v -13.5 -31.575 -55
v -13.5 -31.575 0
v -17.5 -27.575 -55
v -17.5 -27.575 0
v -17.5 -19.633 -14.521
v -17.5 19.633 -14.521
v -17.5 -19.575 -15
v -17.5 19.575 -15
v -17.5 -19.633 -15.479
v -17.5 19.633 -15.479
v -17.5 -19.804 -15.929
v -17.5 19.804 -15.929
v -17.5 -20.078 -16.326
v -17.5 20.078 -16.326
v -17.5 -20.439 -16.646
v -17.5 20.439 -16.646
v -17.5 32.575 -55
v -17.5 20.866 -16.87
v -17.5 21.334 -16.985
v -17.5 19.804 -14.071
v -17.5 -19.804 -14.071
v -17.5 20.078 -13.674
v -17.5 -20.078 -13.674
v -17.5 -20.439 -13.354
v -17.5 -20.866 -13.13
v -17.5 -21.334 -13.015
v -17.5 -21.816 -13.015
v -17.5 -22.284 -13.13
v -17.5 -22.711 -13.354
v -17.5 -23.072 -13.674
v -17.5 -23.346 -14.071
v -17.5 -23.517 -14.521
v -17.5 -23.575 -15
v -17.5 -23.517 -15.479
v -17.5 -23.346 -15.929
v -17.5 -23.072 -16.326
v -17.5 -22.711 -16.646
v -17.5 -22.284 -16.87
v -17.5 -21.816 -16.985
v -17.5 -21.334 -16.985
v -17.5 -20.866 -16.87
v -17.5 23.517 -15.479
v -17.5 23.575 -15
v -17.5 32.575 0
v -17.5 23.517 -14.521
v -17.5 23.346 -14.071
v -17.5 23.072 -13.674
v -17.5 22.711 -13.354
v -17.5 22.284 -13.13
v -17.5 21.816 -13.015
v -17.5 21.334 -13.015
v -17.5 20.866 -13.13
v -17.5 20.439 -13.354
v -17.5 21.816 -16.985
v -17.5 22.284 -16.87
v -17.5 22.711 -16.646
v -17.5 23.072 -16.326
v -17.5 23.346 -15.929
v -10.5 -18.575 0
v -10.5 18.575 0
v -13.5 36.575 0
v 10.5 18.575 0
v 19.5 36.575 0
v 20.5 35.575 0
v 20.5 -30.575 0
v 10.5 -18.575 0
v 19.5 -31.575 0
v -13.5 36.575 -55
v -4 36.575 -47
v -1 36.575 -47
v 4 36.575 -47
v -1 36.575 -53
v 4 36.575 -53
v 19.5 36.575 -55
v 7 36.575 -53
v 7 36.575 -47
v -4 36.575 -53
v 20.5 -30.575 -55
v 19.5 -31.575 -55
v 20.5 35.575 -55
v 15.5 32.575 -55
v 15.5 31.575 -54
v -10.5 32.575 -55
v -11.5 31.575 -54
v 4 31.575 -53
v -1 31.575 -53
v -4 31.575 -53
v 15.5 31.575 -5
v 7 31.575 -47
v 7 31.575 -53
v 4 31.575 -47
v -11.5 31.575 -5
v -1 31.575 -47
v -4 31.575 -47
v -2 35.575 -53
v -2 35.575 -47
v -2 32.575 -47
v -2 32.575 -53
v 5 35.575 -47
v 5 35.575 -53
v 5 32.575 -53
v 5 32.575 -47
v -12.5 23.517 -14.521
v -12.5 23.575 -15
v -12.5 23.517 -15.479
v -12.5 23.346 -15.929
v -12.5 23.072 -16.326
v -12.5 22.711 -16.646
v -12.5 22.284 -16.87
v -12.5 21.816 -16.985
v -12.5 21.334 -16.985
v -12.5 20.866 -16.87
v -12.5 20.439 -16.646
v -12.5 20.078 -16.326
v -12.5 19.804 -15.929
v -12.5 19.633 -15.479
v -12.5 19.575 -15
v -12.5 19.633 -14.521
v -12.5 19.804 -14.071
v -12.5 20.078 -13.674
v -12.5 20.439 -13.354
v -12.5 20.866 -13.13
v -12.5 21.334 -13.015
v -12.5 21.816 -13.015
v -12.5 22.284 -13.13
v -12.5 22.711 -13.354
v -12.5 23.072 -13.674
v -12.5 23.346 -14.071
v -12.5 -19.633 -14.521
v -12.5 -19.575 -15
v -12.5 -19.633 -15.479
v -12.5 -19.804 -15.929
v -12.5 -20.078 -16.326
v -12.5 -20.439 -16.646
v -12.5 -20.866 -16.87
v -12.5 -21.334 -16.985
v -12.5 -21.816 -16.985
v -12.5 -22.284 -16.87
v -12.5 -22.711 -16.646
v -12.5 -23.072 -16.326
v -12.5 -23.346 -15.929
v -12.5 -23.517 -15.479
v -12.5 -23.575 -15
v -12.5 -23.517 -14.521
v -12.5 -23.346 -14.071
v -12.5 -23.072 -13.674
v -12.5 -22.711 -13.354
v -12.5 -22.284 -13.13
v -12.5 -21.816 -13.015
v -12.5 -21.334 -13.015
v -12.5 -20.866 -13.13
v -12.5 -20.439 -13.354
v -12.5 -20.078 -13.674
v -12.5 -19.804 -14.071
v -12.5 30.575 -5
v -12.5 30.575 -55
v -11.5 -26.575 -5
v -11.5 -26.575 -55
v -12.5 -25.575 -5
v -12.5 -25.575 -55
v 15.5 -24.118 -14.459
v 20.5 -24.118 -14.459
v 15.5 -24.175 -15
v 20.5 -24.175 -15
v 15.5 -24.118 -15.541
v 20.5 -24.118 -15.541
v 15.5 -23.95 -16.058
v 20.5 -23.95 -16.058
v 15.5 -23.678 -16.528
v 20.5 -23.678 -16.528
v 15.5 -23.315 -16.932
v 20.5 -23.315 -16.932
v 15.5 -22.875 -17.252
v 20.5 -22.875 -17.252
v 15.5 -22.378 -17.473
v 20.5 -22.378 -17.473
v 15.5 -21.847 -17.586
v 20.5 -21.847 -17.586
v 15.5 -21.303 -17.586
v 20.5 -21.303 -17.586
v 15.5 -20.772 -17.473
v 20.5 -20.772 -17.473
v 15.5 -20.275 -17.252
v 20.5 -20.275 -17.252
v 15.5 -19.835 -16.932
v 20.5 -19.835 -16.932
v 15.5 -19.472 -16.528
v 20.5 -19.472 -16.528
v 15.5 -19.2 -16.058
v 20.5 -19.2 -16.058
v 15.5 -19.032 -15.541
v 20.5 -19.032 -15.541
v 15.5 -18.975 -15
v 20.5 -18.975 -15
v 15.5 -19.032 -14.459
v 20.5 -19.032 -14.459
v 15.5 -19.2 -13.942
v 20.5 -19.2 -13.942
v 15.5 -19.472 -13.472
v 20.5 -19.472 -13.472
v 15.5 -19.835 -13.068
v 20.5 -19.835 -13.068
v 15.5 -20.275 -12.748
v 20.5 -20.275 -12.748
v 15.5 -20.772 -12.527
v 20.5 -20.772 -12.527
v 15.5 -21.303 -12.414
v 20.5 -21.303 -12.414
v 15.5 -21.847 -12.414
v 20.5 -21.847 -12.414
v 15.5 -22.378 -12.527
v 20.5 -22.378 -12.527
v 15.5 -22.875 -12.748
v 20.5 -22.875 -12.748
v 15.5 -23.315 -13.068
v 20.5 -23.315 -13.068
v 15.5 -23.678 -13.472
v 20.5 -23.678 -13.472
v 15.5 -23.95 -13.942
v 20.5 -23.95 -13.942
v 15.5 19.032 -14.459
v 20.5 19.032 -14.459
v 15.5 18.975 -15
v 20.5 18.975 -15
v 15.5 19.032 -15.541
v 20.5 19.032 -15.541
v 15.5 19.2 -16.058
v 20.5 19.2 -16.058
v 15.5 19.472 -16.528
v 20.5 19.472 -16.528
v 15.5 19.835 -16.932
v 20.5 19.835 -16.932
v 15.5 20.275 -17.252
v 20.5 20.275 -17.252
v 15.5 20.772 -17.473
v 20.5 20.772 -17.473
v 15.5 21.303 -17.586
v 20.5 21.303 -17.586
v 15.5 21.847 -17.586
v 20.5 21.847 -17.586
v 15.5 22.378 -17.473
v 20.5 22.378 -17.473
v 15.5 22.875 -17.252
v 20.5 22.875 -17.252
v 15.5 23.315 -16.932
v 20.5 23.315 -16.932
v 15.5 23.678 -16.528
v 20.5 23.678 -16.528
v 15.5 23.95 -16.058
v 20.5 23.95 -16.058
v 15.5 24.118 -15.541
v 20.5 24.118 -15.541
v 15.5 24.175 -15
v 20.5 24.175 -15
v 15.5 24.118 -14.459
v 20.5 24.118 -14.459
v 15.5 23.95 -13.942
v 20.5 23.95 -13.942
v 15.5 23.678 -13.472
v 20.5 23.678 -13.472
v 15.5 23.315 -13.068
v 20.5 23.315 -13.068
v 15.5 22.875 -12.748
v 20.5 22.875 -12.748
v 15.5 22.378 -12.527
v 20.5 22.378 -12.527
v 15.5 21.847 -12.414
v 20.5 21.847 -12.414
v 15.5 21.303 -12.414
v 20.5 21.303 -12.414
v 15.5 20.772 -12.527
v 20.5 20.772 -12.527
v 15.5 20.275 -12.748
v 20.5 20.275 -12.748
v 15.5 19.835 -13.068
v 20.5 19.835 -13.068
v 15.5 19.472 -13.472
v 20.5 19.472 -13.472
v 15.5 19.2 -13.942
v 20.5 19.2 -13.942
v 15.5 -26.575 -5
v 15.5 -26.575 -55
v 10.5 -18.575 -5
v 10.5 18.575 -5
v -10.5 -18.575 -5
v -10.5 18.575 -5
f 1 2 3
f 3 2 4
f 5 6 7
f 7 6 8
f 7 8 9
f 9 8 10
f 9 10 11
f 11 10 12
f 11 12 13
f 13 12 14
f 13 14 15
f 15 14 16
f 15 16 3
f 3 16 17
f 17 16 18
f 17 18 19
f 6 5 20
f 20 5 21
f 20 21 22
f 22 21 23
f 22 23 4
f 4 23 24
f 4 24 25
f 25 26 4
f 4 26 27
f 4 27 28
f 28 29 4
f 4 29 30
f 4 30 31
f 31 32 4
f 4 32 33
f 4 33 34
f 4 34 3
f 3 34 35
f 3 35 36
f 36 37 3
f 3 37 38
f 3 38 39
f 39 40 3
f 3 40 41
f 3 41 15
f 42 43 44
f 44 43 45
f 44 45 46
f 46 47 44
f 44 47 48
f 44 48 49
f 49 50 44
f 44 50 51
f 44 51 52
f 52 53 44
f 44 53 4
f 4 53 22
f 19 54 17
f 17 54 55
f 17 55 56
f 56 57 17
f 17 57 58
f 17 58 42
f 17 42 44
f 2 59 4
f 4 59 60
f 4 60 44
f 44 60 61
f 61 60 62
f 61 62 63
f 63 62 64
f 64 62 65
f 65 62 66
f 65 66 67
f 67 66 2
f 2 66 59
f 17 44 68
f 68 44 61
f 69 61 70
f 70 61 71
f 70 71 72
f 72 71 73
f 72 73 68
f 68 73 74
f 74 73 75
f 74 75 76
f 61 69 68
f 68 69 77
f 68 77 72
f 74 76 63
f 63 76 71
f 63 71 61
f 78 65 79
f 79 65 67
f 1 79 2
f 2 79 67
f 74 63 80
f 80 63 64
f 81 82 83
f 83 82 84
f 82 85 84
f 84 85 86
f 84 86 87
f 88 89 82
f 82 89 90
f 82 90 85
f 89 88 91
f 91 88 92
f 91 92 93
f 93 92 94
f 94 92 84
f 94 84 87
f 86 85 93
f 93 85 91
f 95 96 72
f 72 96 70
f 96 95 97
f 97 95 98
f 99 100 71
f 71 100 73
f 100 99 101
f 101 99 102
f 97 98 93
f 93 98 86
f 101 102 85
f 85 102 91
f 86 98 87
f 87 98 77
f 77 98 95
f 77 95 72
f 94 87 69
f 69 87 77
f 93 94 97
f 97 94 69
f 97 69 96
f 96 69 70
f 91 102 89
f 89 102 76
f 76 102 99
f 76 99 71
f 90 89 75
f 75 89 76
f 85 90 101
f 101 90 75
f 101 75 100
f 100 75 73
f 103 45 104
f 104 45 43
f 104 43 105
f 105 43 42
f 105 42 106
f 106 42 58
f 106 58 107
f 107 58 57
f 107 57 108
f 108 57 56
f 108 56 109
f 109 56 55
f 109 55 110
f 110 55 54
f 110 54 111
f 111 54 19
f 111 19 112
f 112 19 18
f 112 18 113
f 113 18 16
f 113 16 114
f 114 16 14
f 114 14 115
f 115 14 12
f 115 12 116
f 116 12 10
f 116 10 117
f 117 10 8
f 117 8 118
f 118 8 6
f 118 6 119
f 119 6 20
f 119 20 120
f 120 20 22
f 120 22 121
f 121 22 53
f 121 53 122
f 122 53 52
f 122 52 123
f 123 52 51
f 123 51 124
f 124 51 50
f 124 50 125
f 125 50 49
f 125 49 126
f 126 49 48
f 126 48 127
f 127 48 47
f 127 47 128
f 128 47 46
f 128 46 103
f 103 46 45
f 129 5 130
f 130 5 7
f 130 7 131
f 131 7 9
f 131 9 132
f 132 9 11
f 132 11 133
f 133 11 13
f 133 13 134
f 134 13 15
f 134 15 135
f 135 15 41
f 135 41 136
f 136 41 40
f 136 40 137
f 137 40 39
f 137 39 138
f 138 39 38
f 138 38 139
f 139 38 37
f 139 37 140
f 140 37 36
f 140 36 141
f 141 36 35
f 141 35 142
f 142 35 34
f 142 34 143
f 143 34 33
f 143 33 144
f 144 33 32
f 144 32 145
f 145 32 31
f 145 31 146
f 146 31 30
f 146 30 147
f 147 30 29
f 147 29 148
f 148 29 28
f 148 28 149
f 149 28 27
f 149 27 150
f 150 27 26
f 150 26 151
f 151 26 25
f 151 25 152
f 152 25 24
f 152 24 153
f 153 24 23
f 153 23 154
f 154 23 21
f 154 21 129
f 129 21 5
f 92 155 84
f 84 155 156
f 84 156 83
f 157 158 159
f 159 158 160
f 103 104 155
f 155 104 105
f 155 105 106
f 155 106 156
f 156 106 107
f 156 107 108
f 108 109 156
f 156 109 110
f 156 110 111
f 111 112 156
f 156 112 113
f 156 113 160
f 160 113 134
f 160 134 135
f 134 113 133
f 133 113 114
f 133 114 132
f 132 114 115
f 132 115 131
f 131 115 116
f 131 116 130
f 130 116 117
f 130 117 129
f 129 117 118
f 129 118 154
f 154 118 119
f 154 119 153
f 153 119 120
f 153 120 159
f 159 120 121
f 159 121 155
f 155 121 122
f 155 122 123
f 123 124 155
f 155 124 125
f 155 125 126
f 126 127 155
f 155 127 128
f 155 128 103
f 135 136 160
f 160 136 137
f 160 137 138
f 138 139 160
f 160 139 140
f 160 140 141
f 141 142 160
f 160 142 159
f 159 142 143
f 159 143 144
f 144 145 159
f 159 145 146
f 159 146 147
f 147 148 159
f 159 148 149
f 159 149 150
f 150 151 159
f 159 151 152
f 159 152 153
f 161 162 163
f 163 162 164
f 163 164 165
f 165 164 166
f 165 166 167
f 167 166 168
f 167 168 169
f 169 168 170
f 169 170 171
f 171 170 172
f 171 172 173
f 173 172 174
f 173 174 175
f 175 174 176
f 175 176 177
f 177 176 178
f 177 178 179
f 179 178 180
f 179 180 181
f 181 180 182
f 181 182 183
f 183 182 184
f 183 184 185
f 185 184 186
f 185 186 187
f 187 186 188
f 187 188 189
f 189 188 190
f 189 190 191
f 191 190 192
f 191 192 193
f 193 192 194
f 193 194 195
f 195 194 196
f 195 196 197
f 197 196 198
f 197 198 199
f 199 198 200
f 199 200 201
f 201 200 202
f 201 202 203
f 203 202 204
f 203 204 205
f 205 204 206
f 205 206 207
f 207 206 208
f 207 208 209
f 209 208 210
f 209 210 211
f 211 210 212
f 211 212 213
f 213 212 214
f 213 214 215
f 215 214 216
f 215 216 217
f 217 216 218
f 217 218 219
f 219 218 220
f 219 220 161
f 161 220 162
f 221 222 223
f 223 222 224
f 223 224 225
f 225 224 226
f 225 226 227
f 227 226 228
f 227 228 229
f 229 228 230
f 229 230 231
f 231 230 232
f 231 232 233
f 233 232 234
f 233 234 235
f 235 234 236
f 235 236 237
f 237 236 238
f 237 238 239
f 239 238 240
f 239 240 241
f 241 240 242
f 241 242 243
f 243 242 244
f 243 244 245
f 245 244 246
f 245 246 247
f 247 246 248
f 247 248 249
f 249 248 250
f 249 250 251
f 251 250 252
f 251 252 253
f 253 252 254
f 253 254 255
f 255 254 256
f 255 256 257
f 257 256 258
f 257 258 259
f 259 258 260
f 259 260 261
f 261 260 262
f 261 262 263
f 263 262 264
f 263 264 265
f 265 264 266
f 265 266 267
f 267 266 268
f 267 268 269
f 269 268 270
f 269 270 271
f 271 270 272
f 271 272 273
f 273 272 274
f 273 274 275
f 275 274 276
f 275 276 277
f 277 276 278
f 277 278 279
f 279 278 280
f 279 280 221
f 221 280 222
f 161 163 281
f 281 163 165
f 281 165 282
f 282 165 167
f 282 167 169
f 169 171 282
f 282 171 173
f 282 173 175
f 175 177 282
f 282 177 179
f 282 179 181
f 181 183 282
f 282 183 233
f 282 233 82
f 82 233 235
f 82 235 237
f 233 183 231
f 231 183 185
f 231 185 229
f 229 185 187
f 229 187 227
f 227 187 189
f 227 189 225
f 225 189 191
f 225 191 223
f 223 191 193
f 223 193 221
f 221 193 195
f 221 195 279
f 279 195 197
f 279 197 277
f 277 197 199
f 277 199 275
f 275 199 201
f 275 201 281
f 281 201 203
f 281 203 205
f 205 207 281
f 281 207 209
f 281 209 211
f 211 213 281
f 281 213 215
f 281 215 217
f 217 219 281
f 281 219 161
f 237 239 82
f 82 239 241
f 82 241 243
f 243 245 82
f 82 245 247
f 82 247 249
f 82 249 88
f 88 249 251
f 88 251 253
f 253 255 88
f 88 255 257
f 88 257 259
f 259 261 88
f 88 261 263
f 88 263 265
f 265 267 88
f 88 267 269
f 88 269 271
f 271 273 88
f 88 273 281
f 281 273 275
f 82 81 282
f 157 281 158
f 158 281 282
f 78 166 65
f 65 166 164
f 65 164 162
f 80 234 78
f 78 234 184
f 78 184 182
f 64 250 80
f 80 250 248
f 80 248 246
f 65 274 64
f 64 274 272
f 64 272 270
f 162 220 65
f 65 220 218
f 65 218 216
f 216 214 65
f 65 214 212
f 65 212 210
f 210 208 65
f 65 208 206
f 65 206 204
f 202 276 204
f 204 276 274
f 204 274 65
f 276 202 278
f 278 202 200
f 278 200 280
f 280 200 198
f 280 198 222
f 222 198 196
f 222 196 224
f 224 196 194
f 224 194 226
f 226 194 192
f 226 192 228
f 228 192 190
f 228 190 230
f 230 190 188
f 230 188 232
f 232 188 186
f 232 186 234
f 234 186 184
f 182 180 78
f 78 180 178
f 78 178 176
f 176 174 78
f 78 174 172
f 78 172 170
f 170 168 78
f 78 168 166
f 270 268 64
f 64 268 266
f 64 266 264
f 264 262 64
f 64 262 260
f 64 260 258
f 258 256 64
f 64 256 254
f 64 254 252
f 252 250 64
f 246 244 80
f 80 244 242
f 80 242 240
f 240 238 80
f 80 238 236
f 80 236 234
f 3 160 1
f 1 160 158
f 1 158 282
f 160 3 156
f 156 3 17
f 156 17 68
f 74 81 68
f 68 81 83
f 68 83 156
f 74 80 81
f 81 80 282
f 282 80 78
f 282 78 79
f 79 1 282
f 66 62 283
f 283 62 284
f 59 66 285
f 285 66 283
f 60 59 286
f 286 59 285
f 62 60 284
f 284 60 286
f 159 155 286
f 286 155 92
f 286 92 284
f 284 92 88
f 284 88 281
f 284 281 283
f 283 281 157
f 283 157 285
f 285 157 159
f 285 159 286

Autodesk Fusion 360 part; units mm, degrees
sketch "Sketch1" plane through (0, 0, 0) normal (0, 0, 1) x (1, 0, 0)
  line L0 (10.5, -18.575) -> (-10.5, -18.575)
  line L1 (-10.5, -18.575) -> (-10.5, 18.575)
  line L2 (-10.5, 18.575) -> (10.5, 18.575)
  line L3 (10.5, 18.575) -> (10.5, -18.575)
  line L4 (10.5, -18.575) -> (-10.5, 18.575) construction
  line L5 (-10.5, -18.575) -> (10.5, 18.575) construction
  line L6 (15.5, -26.575) -> (-12.5, -26.575)
  line L7 (-12.5, -26.575) -> (-12.5, 31.575)
  line L8 (-12.5, 31.575) -> (15.5, 31.575)
  line L9 (15.5, 31.575) -> (15.5, -26.575)
  line L10 (20.5, -31.575) -> (-17.5, -31.575)
  line L11 (-17.5, -31.575) -> (-17.5, 36.575)
  line L12 (-17.5, 36.575) -> (20.5, 36.575)
  line L13 (20.5, 36.575) -> (20.5, -31.575)
  dimension "d1" = 21
  dimension "d2" = 37.15
  dimension "d4" = 2
  dimension "d5" = 8
  dimension "d6" = 5
  dimension "d7" = 5
  dimension "d19" = 13
  dimension "d20" = 5
  dimension "d21" = 5
  dimension "d22" = 5
extrude "Extrude1" add sketch "Sketch1" against normal blind 5 contours L6 L7 L8 L9
extrude "Extrude2" add sketch "Sketch1" against normal blind 55 contours L10 L11 L12 L13
sketch "Sketch3" plane through (20.5, 0, 0) normal (1, 0, 0) x (0, 1, 0)
  line L0 (36.575, 0) -> (-31.575, 0)
  line L1 (-31.575, 0) -> (-31.575, -55)
  line L2 (-31.575, -55) -> (36.575, -55)
  line L3 (36.575, -55) -> (36.575, 0)
  line L4 (-31.575, -15) -> (36.575, -15) construction
  line L5 (36.575, 0) -> (-31.575, 0)
  circle A0 centre (21.575, -15) radius 2.6
  circle A1 centre (-21.575, -15) radius 2.6
  line L6 (-26.575, -5) -> (31.575, -5)
  line L7 (31.575, -5) -> (31.575, -55)
  line L8 (31.575, -55) -> (-26.575, -55)
  line L9 (-26.575, -55) -> (-26.575, -5)
  dimension "d23" = 15
  dimension "d24" = 5.2
  dimension "d25" = 5.2
  dimension "d26" = 10
  dimension "d27" = 5
extrude "Extrude4" cut sketch "Sketch3" against normal up to surface (5 mm away) contours A0 | A1
sketch "Sketch4" plane through (-17.5, 0, 0) normal (-1, 0, 0) x (0, -1, 0)
  line L0 (31.575, 0) -> (-36.575, 0)
  line L1 (-36.575, 0) -> (-36.575, -55)
  line L2 (-36.575, -55) -> (31.575, -55)
  line L3 (31.575, -55) -> (31.575, 0)
  circle A0 centre (21.575, -15) radius 2.6
  circle A1 centre (-21.575, -15) radius 2.6
  line L4 (26.575, -5) -> (-31.575, -5)
  line L5 (-31.575, -5) -> (-31.575, -55)
  line L6 (-31.575, -55) -> (26.575, -55)
  line L7 (26.575, -55) -> (26.575, -5)
  circle A2 centre (-21.575, -15) radius 2
  circle A3 centre (21.575, -15) radius 2
  dimension "d30" = 4
  dimension "d31" = 4
chamfer "Chamfer5" distance 1 angle 45 2 edges at (-12.5, -26.575, -30) (-12.5, 31.575, -30)
extrude "Extrude5" cut sketch "Sketch4" against normal through all contours A2 | A3
sketch "Sketch5" plane through (0, 36.575, 0) normal (0, 1, 0) x (-1, 0, 0)
  line L0 (-20.5, -55) -> (17.5, -55)
  line L1 (17.5, 0) -> (-20.5, 0)
  line L2 (-1.5, -55) -> (-1.5, 0) construction
  line L3 (2, -47) -> (4, -47)
  line L4 (4, -47) -> (4, -53)
  line L5 (4, -53) -> (2, -53)
  line L6 (2, -53) -> (2, -47)
  line L7 (-7, -47) -> (-7, -53)
  line L8 (-7, -53) -> (-5, -53)
  line L9 (-5, -53) -> (-5, -47)
  line L10 (-5, -47) -> (-7, -47)
  line L11 (17.5, -55) -> (17.5, 0)
  line L12 (-20.5, 0) -> (-20.5, -55)
  dimension "d35" = 6
  dimension "d36" = 2
  dimension "d37" = 3.5
  dimension "d38" = 2
extrude "Extrude6" cut sketch "Sketch5" against normal up to surface (5 mm away) contours L3 L4 L5 L6 | L7 L8 L9 L10
chamfer "Chamfer2" distance 1 angle 45 2 edges at (5, 31.575, -50) (-2, 31.575, -50)
chamfer "Chamfer3" distance 1 angle 45 2 edges at (5, 36.575, -50) (-2, 36.575, -50)
chamfer "Chamfer4" distance 1 angle 45 1 edges at (1.5, 31.575, -55)
chamfer "Chamfer1" distance 1 angle 45 2 edges at (20.5, 36.575, -27.5) (20.5, -31.575, -27.5)
chamfer "Chamfer6" distance 4 angle 45 2 edges at (-17.5, 36.575, -27.5) (-17.5, -31.575, -27.5)
equation "d30 = d31"
